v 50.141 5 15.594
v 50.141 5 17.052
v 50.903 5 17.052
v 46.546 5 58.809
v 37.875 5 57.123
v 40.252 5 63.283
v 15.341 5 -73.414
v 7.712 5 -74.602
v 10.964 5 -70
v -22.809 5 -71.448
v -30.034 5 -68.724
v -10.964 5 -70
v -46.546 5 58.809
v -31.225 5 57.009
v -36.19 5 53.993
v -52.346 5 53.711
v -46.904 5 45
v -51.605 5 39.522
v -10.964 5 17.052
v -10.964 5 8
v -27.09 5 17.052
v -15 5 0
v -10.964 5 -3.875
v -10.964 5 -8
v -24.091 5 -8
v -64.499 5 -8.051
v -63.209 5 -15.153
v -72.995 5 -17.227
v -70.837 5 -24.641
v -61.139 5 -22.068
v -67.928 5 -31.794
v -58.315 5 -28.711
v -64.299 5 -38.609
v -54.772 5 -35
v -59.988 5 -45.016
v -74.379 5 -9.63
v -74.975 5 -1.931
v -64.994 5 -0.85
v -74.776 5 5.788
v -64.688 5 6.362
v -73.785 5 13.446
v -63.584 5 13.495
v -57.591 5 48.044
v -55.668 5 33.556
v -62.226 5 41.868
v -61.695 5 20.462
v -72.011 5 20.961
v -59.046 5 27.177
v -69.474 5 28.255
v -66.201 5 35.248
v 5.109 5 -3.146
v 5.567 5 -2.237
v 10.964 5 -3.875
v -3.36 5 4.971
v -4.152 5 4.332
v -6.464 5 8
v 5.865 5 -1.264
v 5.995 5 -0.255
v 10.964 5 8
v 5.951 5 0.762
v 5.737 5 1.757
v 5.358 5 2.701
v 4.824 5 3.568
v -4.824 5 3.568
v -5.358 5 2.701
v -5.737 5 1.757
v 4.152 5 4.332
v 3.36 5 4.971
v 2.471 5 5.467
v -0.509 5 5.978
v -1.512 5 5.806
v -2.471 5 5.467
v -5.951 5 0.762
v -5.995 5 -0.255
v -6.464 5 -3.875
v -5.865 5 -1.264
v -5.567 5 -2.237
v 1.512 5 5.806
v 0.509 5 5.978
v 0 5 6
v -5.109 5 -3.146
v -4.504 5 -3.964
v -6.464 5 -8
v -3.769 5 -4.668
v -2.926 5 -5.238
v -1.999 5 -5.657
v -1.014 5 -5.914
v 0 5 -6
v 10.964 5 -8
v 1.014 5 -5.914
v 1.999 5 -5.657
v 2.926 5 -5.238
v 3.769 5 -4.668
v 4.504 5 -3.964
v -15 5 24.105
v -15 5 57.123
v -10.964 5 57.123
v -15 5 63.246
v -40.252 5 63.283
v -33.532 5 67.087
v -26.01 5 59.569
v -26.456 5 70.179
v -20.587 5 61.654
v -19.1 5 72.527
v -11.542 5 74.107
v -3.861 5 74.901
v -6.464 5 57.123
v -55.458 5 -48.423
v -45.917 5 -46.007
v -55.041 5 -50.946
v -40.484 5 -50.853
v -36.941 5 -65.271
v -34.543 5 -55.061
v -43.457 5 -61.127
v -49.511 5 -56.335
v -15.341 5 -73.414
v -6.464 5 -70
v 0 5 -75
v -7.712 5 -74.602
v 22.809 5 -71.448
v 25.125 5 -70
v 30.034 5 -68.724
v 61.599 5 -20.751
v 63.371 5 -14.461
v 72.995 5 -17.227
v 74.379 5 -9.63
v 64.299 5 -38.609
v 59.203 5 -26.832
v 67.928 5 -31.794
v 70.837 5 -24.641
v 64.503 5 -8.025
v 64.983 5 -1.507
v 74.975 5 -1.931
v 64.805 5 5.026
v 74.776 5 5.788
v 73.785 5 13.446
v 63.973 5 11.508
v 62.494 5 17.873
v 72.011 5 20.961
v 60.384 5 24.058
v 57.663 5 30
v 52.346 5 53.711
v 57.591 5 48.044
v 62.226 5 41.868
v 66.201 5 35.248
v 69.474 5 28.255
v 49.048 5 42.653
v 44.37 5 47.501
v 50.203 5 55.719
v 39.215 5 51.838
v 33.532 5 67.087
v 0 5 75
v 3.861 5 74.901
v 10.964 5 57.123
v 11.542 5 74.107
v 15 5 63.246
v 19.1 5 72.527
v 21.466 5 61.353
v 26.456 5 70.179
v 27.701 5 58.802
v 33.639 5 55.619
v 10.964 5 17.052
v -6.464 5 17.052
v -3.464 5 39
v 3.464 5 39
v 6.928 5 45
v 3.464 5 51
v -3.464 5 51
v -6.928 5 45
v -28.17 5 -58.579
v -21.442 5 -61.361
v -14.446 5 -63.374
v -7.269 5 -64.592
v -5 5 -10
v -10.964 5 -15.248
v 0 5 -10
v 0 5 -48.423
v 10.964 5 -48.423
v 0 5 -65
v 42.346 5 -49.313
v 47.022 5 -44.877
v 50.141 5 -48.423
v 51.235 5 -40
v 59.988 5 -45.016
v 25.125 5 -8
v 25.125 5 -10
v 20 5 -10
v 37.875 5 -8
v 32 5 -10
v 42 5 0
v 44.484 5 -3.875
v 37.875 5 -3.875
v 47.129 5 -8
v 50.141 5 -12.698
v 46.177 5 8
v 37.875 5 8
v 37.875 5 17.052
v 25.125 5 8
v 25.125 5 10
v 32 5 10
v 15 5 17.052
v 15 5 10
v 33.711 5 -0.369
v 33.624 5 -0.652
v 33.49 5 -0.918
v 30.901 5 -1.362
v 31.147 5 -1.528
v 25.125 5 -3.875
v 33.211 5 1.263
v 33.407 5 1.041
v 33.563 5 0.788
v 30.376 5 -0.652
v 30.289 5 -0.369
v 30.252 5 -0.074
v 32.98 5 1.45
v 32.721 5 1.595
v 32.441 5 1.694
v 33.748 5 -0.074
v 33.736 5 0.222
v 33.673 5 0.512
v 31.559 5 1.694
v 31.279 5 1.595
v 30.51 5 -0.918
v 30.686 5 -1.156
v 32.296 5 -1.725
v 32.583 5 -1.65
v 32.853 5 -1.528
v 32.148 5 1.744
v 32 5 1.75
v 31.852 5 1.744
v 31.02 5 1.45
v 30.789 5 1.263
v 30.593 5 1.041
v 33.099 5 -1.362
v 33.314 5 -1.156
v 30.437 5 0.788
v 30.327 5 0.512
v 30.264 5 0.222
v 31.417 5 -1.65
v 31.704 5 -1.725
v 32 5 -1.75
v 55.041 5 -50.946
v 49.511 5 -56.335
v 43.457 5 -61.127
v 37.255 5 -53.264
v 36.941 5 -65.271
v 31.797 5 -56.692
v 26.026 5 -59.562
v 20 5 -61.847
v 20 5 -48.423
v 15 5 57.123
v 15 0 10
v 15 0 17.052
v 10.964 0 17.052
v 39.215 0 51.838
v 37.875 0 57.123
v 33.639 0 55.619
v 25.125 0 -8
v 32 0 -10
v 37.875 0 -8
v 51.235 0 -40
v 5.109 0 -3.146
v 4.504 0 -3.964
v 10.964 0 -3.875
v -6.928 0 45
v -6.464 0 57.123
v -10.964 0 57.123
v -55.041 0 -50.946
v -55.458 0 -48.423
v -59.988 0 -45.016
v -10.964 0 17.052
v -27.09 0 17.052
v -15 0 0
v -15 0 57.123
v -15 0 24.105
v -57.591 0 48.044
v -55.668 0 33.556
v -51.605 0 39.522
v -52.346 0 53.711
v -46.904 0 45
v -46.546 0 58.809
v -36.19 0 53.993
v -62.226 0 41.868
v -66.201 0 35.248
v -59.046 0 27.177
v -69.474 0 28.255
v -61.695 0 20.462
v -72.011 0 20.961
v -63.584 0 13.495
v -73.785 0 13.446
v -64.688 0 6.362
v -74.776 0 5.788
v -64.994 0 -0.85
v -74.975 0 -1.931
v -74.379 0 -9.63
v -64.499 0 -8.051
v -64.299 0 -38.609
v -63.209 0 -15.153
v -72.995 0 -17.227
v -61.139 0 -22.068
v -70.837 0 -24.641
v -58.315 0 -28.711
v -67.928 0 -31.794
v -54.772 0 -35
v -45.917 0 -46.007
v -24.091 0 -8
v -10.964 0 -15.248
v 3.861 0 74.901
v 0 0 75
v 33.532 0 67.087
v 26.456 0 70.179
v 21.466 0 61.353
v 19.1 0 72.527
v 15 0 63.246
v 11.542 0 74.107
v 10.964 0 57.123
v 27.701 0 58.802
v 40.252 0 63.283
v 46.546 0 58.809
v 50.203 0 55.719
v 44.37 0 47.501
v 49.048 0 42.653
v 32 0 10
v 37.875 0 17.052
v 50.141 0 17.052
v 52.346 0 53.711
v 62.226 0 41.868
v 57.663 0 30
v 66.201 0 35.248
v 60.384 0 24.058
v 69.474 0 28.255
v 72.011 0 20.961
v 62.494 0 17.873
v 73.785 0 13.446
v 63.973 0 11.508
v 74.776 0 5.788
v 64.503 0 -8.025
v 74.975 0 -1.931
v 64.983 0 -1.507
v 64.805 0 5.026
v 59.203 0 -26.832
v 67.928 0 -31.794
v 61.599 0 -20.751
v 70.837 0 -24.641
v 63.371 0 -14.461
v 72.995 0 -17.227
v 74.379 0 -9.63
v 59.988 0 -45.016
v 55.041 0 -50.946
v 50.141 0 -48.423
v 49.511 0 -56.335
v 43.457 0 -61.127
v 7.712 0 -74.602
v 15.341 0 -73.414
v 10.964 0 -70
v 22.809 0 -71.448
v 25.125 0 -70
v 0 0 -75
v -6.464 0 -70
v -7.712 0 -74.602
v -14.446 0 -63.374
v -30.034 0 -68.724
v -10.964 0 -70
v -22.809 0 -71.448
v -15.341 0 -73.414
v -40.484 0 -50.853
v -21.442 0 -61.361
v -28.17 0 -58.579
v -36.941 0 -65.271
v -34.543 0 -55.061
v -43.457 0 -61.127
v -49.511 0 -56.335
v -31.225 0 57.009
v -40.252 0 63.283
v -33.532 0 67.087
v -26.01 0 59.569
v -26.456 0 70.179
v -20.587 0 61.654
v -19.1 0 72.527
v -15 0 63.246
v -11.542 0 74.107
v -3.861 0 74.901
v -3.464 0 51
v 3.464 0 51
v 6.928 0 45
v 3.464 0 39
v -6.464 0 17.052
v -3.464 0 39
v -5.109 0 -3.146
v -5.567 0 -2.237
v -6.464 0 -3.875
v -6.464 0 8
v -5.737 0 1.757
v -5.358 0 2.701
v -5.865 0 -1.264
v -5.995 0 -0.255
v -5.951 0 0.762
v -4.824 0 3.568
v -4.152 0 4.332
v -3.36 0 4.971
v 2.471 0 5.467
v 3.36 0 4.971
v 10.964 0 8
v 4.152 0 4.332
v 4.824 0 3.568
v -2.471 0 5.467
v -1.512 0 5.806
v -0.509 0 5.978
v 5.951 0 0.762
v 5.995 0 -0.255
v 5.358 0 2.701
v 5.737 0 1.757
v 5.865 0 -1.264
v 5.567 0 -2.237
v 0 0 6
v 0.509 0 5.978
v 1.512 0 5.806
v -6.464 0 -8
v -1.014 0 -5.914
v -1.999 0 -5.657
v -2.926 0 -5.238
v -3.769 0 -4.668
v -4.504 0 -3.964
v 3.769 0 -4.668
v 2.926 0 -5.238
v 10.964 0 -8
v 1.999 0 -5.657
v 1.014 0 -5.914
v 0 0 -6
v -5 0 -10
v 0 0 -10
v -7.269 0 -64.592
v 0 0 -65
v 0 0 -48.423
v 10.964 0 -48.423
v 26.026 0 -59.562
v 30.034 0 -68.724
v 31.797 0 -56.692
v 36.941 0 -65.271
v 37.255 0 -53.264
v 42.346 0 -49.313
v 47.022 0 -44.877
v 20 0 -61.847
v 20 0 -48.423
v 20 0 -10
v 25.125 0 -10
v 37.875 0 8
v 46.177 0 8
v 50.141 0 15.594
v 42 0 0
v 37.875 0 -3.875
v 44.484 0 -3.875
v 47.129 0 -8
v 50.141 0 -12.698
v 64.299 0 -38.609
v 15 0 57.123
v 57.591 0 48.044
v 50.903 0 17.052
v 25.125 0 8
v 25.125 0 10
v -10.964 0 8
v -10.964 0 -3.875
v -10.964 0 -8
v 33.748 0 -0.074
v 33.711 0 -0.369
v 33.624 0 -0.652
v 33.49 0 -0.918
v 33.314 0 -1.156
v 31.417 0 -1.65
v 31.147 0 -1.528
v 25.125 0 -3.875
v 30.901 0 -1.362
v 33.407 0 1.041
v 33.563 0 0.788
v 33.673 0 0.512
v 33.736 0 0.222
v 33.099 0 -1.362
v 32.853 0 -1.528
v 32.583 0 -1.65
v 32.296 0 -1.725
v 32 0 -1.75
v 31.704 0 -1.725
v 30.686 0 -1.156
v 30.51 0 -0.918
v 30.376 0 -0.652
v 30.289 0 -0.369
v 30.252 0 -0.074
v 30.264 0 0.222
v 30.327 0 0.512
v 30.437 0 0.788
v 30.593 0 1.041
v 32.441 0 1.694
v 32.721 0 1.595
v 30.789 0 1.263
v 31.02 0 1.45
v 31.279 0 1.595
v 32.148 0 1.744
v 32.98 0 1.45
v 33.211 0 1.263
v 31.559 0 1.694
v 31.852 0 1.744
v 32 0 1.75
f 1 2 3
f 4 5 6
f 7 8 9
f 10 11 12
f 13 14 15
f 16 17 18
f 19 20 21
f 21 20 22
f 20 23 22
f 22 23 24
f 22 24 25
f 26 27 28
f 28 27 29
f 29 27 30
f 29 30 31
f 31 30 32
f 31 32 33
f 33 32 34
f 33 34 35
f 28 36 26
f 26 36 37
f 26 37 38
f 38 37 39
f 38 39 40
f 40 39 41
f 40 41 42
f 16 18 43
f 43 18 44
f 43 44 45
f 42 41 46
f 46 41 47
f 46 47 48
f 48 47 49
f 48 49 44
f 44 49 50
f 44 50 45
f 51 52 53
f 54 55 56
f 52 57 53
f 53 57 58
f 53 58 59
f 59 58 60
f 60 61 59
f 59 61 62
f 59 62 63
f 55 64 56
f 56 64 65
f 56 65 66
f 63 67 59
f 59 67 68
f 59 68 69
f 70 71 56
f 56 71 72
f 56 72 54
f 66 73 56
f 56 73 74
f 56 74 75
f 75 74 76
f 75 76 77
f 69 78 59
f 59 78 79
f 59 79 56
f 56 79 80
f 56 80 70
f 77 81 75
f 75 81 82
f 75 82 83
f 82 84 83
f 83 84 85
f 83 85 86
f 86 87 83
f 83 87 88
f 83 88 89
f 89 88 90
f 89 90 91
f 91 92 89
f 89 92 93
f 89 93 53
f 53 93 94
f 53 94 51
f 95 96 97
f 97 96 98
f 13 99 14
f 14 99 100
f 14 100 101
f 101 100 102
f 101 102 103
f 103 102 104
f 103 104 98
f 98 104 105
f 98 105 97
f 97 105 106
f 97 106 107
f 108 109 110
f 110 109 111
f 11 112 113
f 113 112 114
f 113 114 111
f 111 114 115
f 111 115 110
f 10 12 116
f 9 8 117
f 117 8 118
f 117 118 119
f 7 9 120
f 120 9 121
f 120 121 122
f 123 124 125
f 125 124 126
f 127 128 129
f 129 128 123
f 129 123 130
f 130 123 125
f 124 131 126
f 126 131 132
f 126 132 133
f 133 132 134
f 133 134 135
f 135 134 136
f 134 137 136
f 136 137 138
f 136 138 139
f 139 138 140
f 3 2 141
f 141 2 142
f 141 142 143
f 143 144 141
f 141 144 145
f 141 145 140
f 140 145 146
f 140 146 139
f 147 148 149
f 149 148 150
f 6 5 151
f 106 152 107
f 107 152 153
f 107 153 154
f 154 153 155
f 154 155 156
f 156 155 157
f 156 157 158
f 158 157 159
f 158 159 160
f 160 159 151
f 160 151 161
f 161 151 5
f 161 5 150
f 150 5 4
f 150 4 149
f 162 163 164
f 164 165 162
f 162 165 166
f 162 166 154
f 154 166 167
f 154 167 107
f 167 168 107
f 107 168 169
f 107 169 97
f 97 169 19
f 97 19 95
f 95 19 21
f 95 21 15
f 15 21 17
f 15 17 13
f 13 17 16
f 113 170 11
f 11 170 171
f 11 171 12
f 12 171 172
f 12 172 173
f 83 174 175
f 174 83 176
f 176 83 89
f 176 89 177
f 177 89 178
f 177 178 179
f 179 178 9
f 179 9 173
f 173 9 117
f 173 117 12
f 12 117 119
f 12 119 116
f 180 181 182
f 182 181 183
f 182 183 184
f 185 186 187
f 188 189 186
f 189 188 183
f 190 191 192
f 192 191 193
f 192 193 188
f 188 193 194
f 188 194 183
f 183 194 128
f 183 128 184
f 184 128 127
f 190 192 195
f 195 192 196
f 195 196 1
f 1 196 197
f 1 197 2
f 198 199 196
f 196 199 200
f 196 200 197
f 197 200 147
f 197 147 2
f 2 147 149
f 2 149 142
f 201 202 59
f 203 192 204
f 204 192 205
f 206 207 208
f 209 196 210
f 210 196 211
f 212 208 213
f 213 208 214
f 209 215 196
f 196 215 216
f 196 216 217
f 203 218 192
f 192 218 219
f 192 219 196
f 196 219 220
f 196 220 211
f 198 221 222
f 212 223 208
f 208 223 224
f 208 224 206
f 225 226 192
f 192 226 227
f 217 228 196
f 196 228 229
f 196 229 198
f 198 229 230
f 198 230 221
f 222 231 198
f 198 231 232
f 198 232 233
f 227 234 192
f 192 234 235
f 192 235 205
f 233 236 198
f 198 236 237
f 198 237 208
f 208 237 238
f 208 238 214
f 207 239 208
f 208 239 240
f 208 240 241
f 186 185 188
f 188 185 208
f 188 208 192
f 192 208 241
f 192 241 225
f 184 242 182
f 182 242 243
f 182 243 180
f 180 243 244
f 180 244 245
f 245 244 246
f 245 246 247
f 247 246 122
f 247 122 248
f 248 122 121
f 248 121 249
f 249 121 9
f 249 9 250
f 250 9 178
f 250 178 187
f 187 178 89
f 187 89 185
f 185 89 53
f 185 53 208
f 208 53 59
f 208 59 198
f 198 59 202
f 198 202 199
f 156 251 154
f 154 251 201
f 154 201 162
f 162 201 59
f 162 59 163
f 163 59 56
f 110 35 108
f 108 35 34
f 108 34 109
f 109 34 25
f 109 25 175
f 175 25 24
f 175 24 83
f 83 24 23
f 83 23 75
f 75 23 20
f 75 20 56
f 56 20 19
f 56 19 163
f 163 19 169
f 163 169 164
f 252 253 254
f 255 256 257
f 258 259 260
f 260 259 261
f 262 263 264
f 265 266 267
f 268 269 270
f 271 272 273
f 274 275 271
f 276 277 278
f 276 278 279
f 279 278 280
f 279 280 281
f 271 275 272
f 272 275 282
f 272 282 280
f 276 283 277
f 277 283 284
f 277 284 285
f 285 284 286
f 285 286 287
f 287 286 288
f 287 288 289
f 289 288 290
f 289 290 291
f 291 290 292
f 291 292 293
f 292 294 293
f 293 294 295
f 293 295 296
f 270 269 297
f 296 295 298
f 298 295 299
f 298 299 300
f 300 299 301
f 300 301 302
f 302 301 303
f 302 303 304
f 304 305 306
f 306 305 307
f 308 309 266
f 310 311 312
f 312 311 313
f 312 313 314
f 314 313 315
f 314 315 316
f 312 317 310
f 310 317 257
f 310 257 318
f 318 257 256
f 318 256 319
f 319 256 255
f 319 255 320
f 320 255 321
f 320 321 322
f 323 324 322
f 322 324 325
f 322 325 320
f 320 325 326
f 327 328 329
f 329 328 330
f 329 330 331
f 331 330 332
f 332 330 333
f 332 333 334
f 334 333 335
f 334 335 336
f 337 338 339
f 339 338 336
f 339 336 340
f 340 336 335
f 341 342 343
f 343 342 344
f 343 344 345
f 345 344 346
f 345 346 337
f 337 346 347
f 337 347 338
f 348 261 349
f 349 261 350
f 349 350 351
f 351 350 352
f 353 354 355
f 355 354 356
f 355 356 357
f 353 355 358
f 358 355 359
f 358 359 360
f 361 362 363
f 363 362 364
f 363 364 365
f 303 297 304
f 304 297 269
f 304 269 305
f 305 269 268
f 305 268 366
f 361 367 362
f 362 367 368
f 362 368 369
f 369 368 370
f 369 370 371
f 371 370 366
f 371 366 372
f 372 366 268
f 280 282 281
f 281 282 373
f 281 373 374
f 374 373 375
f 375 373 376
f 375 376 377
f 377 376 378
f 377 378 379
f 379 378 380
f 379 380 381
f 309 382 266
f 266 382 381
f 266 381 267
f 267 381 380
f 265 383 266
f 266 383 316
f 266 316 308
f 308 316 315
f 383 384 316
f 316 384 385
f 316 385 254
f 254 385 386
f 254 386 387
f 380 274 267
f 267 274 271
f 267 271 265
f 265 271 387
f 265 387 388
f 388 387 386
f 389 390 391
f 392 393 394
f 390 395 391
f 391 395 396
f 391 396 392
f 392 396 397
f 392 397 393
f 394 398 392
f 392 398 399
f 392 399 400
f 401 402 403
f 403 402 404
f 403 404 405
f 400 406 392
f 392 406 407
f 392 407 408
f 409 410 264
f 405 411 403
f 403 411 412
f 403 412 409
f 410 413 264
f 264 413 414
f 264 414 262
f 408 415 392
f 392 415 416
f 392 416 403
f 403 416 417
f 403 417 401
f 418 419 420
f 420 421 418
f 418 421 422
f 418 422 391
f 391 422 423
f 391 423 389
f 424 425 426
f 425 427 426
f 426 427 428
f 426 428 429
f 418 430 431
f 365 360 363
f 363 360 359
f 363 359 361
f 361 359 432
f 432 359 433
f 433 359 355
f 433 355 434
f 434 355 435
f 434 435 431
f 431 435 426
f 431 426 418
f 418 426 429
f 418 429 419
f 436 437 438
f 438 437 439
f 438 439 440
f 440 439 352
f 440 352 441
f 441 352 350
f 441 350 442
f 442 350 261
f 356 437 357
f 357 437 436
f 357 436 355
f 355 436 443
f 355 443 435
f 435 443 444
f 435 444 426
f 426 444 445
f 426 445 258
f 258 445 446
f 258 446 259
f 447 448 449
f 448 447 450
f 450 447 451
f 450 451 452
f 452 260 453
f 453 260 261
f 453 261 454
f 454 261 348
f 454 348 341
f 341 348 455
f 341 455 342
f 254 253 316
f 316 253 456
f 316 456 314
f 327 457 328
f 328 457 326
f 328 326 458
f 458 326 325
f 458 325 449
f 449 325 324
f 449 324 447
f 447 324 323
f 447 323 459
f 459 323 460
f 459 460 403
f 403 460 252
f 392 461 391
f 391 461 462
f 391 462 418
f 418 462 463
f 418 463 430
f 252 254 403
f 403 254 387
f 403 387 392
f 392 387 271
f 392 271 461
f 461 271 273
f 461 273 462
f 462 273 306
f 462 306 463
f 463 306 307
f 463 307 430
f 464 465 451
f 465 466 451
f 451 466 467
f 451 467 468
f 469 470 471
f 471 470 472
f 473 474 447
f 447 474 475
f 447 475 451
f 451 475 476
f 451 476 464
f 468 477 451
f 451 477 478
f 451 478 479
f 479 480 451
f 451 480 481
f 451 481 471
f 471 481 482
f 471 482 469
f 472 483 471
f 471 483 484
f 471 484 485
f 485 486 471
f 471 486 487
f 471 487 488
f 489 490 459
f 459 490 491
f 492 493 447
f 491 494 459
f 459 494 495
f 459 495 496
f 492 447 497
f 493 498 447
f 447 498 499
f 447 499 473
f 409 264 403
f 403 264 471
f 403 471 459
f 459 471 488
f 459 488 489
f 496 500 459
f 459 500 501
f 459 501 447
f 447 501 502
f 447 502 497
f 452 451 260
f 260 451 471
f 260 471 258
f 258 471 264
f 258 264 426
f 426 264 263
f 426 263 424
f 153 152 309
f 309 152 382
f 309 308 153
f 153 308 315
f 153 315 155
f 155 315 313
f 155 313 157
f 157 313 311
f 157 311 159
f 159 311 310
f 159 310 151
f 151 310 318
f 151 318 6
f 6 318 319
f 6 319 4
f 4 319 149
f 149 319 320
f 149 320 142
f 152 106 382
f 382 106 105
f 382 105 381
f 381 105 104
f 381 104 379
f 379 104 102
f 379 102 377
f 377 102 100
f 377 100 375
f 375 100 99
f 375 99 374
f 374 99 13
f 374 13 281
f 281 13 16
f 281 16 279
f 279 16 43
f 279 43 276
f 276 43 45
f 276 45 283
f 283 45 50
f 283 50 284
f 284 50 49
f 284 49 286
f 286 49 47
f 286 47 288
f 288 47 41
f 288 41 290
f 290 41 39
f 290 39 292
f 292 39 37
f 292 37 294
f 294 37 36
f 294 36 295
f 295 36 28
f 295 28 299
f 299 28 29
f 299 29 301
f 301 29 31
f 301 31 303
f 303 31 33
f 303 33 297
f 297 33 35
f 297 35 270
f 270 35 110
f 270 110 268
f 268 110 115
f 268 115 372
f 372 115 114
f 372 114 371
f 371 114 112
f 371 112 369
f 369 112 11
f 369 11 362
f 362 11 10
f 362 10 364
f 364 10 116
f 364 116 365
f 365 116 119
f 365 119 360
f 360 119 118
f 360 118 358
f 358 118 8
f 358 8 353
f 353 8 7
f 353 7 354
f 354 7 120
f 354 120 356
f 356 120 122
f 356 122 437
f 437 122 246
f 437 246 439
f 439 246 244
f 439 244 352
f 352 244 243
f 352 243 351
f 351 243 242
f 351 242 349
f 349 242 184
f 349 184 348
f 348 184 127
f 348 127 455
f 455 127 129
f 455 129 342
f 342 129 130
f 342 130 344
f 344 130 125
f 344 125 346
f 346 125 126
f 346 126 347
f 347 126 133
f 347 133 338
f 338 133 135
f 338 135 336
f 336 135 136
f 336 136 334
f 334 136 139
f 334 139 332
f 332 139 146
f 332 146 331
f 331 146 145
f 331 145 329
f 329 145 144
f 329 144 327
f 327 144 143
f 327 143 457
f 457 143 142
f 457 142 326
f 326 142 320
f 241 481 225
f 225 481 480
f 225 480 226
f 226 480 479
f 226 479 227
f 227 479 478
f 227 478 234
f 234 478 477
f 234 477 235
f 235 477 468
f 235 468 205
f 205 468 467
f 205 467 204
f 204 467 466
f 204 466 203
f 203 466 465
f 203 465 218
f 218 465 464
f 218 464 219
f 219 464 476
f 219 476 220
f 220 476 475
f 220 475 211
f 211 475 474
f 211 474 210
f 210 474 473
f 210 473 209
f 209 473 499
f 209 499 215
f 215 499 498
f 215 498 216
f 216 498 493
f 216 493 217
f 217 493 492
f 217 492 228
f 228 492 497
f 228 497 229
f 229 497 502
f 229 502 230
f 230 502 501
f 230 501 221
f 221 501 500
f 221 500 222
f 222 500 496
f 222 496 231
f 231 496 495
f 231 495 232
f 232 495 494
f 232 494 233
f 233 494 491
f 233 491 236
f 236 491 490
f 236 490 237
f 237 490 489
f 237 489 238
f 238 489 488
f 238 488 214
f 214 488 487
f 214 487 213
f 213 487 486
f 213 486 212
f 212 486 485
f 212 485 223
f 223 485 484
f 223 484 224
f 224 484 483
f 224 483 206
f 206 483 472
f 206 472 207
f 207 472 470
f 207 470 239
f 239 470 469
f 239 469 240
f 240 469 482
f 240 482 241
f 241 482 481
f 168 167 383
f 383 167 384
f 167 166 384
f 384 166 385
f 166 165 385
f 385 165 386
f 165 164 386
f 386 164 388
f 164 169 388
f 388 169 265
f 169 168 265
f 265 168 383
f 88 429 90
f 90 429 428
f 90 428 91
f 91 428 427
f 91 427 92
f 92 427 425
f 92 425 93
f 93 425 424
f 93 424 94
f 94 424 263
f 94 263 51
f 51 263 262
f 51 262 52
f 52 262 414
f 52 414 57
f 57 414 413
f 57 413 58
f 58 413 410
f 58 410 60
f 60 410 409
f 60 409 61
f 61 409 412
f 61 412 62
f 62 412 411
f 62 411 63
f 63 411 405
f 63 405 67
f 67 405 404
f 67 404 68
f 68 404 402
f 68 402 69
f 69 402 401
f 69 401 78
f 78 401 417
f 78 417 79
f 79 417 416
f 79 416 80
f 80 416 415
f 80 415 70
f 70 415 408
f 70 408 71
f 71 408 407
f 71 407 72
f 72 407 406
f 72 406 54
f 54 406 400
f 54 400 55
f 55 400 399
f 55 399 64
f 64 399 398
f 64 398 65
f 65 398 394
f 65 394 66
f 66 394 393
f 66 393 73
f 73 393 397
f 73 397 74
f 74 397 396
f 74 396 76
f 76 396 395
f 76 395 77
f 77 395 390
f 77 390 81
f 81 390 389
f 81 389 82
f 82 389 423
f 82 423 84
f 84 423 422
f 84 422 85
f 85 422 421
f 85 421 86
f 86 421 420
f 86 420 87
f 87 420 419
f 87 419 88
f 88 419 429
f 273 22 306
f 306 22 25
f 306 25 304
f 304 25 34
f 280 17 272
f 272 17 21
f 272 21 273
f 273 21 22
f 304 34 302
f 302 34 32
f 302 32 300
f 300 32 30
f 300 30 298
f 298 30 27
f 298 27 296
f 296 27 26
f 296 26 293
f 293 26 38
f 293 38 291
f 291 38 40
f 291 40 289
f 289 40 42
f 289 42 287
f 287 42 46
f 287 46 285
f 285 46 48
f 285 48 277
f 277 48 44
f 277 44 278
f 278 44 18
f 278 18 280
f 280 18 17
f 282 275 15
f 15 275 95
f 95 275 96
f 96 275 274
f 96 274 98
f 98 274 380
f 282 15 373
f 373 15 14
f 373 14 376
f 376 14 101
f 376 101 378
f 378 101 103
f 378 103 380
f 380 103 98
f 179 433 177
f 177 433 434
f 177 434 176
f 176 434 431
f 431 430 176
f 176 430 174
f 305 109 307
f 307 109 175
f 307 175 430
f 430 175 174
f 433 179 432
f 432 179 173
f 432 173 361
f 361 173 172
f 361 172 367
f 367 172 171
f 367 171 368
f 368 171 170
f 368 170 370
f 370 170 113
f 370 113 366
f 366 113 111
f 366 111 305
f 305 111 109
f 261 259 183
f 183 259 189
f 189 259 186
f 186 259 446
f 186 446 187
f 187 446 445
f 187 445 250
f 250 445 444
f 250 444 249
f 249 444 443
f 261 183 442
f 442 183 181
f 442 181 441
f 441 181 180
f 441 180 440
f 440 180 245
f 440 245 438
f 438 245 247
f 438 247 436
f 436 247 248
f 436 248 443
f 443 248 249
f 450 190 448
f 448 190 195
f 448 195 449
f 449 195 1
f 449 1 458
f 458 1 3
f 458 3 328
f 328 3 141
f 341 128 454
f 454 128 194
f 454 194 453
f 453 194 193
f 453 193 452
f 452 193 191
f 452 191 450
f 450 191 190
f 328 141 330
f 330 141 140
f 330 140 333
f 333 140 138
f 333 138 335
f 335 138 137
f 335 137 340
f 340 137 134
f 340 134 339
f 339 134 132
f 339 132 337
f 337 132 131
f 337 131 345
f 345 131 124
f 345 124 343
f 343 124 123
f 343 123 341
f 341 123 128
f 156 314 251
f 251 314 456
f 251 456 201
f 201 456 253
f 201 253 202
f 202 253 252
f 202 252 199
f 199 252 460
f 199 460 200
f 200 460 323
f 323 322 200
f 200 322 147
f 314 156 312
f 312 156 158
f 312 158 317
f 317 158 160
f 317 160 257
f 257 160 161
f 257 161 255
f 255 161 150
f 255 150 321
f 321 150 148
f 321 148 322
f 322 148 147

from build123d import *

# Parameters (mm, degrees)
SKETCH1_R           = 75
SKETCH1_R_2         = 1.75
SKETCH1_R_3         = 6
BOSS_EXTRUDE1_DEPTH = 5
CUT_EXTRUDE1_DEPTH  = 107.183802908


with BuildPart() as part:
    # Sketch1 → Boss-Extrude1 (new body)
    with BuildSketch(Plane(origin=(0, 0, 0), x_dir=(1, 0, 0), z_dir=(0, 1, 0))):
        Circle(SKETCH1_R)
        with Locations((32, 0)):
            Circle(SKETCH1_R_2, mode=Mode.SUBTRACT)
        Circle(SKETCH1_R_3, mode=Mode.SUBTRACT)
        Polygon((3.464101615, -51), (6.92820323, -45), (3.464101615, -39), (-3.464101615, -39), (-6.92820323, -45), (-3.464101615, -51), align=None, mode=Mode.SUBTRACT)
    extrude(amount=BOSS_EXTRUDE1_DEPTH)

    # Sketch2 → Cut-Extrude1 (cut, through all)
    with BuildSketch(Plane(origin=(0, 5, 0), x_dir=(1, 0, 0), z_dir=(0, 1, 0))):
        with BuildLine():
            Line((-45.916707554, 46.007129527), (-5, 10))
            Line((-5, 10), (0, 10))
            Line((0, 10), (0, 65))
            ThreePointArc((0, 65), (-24.844884591, 60.064396356), (-45.916707554, 46.007129527))
        make_face()
        with BuildLine():
            Line((-46.904157598, -45), (-15, 0))
            Line((-15, 0), (-54.772255751, 35))
            ThreePointArc((-54.772255751, 35), (-64.687891122, -6.362133458), (-46.904157598, -45))
        make_face()
        with BuildLine():
            Line((20, 61.846584384), (20, 10))
            Line((20, 10), (32, 10))
            Line((32, 10), (51.23475383, 40))
            ThreePointArc((51.23475383, 40), (37.254742659, 53.264285871), (20, 61.846584384))
        make_face()
        with BuildLine():
            Line((-15, -24.104744769), (-36.190322049, -53.993153177))
            ThreePointArc((-36.190322049, -53.993153177), (-26.00988263, -59.569169925), (-15, -63.245553203))
            Line((-15, -63.245553203), (-15, -24.104744769))
        make_face()
        with BuildLine():
            Line((32, -10), (15, -10))
            Line((15, -10), (15, -63.245553203))
            ThreePointArc((15, -63.245553203), (33.63849917, -55.618804137), (49.048013306, -42.653163901))
            Line((49.048013306, -42.653163901), (32, -10))
        make_face()
        with BuildLine():
            Line((59.203473805, 26.831859597), (42, 0))
            Line((42, 0), (57.662812973, -30))
            ThreePointArc((57.662812973, -30), (64.976128791, -1.761444678), (59.203473805, 26.831859597))
        make_face()
    extrude(amount=-CUT_EXTRUDE1_DEPTH, mode=Mode.SUBTRACT)


solid = part.part
